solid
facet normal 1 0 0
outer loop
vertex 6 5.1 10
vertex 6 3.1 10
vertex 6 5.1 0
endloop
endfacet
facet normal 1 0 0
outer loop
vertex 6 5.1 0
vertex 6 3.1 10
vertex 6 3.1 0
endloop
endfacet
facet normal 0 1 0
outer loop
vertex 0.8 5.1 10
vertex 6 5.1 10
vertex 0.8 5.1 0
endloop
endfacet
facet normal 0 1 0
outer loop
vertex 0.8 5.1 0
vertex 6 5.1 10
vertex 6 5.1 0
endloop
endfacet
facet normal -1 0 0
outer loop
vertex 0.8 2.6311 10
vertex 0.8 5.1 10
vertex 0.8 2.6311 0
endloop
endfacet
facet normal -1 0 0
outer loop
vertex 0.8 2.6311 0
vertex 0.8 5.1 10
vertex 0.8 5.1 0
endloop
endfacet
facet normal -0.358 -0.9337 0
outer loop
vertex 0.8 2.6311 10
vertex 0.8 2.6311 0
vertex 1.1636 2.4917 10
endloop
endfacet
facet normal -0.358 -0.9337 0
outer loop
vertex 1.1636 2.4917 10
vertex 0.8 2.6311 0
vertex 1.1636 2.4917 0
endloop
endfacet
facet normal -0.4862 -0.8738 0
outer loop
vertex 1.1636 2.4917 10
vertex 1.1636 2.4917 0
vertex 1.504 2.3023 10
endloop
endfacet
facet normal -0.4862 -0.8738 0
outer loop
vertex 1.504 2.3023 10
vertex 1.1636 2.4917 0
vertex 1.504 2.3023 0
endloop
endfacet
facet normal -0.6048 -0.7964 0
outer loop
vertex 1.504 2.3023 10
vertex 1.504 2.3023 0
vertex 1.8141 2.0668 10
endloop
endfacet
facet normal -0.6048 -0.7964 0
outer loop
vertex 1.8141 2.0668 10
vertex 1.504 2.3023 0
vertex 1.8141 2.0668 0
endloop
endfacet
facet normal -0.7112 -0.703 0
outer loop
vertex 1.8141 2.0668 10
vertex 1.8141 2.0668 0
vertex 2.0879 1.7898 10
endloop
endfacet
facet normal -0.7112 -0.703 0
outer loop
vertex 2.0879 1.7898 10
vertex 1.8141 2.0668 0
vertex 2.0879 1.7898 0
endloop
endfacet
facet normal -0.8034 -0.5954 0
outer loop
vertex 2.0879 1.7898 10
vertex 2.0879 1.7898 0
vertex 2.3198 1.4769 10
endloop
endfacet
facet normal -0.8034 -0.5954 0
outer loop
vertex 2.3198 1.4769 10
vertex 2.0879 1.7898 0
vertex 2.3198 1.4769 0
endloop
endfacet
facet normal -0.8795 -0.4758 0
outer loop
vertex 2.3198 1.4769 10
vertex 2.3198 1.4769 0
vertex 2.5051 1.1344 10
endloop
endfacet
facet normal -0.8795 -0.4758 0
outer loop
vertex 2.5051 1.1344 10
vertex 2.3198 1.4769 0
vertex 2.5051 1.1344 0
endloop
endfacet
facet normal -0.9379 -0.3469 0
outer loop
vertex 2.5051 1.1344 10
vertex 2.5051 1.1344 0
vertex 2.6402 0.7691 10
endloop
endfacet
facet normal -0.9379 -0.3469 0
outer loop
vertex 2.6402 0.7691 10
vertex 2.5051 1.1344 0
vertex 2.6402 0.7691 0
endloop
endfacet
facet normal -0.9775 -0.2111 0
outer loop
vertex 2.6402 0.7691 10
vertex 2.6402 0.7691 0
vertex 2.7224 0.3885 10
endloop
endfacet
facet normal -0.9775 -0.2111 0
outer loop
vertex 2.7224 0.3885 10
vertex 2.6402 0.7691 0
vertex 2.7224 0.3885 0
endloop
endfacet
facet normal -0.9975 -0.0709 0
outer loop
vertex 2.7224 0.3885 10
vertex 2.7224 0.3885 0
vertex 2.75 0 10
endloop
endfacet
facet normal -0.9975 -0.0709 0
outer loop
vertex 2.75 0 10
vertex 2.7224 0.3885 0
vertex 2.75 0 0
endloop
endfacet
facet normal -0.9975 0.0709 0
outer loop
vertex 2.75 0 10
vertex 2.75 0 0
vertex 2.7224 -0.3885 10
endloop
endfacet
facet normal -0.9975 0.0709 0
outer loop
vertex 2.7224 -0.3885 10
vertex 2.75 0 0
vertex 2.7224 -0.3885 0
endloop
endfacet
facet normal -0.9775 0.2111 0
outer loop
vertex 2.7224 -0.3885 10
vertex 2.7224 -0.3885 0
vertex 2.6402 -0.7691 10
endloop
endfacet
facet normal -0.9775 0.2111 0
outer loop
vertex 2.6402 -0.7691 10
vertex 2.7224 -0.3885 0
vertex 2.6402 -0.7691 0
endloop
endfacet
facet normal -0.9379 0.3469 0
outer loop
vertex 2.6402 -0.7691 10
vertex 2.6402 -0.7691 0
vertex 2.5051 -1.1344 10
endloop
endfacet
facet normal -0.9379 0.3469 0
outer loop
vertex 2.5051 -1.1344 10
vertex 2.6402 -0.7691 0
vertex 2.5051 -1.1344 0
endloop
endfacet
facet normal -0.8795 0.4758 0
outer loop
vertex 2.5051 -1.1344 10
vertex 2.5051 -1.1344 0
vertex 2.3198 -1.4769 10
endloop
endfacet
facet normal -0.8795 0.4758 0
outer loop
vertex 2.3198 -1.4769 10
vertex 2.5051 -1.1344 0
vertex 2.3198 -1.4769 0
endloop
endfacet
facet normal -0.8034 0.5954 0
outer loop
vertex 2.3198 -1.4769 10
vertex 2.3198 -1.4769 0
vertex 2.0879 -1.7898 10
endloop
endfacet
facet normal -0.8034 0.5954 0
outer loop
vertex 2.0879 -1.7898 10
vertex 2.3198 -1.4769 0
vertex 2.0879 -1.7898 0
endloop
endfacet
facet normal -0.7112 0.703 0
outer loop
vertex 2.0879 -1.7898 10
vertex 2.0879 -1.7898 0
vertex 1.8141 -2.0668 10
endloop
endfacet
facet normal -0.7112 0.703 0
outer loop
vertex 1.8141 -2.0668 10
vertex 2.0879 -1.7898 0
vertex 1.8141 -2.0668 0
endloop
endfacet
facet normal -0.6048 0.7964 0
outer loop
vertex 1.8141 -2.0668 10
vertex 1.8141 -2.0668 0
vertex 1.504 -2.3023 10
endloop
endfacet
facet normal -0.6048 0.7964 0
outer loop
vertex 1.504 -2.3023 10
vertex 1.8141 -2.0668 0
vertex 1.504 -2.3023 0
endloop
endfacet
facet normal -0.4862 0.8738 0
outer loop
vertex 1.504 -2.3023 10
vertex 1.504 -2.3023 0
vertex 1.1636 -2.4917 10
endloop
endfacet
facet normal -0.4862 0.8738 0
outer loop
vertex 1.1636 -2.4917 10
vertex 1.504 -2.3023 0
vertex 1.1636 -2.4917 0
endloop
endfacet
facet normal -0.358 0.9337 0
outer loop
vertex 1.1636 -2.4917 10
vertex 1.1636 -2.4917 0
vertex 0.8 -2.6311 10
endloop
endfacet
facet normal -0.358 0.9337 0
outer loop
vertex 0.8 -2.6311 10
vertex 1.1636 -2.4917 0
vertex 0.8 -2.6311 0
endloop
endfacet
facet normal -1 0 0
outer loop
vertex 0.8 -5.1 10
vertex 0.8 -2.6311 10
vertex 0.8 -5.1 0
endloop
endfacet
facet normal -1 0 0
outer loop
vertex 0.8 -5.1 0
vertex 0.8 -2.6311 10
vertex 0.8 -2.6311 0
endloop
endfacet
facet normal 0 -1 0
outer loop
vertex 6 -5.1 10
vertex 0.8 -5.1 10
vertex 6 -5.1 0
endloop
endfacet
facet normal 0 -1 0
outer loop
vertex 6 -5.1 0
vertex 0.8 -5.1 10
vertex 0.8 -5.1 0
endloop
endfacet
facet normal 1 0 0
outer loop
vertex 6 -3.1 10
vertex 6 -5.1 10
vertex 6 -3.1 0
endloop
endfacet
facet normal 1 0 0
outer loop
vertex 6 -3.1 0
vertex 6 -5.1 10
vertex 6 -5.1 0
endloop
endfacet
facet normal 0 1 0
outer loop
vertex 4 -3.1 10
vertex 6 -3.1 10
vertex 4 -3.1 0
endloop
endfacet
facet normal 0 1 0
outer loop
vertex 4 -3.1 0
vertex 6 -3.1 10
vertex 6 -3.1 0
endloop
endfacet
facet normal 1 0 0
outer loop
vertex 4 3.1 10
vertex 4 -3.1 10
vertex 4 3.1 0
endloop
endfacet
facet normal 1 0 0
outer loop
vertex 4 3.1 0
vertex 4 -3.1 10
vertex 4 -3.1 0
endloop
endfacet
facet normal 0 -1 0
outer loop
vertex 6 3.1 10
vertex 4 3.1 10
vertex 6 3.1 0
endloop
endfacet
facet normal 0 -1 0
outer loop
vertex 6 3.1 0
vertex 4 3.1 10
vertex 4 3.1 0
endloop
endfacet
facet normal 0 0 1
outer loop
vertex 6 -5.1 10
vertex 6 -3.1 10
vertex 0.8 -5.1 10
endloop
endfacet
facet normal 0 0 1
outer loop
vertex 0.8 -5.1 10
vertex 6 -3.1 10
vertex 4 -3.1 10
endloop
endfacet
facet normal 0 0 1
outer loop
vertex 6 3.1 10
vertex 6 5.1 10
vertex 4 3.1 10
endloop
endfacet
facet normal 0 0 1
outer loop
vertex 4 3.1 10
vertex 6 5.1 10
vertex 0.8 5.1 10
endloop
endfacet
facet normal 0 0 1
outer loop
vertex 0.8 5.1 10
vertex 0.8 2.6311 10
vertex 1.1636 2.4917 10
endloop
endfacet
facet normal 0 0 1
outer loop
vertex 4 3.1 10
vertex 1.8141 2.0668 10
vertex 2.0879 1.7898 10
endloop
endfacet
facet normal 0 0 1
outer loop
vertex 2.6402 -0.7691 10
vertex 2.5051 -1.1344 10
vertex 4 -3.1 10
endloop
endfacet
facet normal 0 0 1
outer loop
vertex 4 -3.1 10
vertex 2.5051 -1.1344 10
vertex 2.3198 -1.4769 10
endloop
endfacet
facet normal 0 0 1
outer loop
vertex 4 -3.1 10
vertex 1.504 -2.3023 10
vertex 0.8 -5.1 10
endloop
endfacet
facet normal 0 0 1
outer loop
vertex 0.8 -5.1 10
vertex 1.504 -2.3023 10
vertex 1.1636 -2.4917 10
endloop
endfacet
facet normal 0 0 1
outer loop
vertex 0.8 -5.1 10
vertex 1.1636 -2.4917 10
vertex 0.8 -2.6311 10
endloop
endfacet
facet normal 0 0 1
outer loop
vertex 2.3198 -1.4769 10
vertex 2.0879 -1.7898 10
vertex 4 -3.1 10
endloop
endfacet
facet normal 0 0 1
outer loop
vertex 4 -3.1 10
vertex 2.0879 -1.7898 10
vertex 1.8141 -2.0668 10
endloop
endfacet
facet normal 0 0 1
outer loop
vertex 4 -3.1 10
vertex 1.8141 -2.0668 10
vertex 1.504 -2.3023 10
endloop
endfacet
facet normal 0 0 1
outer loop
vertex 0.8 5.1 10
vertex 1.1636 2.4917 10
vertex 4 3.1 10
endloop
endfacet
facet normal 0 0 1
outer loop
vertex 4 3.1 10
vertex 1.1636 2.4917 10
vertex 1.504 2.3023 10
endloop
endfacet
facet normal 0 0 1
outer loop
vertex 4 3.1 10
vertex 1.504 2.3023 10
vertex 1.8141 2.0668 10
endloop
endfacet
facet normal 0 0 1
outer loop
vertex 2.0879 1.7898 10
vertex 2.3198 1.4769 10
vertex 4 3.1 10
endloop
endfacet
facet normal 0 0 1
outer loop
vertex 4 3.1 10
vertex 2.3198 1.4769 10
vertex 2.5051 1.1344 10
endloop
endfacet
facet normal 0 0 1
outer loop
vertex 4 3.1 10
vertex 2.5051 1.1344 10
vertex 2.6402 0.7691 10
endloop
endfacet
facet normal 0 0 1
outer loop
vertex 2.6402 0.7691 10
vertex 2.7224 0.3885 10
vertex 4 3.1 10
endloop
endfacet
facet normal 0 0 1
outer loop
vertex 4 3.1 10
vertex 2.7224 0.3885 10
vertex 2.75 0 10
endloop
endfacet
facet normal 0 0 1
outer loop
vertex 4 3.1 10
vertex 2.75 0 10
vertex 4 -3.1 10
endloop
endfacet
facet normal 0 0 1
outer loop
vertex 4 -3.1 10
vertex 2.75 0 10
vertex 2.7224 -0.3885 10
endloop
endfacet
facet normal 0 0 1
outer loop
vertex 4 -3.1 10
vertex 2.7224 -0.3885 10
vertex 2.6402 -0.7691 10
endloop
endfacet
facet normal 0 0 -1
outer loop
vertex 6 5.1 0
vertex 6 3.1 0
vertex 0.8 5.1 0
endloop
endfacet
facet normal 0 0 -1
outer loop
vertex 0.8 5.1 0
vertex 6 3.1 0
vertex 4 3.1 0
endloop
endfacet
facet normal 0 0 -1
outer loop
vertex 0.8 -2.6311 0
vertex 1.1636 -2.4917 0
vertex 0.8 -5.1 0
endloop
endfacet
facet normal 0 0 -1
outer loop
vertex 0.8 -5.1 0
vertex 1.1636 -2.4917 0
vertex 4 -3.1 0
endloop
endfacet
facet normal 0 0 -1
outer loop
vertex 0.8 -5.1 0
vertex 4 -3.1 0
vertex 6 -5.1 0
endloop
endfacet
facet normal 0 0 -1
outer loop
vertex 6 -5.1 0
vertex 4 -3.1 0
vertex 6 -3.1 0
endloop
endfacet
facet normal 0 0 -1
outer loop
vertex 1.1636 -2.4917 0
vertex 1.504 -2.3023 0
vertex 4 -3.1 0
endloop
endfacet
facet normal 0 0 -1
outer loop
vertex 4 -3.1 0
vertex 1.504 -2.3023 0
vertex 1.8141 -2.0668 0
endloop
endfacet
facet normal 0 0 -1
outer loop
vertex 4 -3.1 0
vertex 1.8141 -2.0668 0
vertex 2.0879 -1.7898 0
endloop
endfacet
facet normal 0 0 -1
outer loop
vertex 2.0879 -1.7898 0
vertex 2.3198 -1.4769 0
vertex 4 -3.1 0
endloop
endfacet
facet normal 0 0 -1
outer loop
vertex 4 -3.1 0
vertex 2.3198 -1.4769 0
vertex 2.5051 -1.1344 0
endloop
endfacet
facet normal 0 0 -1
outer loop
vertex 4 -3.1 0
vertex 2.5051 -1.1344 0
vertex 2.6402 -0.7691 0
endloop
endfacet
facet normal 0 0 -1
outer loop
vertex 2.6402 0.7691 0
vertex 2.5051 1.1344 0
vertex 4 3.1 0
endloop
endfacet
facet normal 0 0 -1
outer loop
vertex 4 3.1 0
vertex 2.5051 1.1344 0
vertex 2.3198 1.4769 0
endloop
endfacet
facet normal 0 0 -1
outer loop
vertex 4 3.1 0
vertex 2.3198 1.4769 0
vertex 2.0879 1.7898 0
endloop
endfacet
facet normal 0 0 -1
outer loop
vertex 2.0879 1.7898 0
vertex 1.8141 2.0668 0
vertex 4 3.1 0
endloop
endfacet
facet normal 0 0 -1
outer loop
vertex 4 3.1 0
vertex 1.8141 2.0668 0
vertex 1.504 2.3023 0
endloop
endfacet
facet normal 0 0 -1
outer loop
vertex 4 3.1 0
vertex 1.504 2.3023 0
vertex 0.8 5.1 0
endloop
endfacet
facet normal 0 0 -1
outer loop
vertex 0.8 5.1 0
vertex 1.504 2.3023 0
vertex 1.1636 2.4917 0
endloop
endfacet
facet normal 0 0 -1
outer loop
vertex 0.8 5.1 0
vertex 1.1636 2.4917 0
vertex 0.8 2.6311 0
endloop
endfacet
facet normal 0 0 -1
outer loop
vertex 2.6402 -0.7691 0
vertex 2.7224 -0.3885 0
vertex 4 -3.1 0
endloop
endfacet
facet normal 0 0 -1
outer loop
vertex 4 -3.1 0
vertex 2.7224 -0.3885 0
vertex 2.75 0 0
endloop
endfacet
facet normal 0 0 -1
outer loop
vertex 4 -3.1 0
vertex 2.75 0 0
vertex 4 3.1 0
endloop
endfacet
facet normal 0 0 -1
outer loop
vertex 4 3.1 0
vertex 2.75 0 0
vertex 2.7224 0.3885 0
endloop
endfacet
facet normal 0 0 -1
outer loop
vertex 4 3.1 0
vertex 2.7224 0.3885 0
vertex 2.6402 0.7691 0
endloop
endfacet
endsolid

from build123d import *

# Parameters (mm, degrees)
EXTRUDE_1_DEPTH = 10


with BuildPart() as part:
    # ｽｹｯﾁ1 → ﾎﾞｽ - 押し出し1 (new body)
    with BuildSketch(Plane.XY):
        with BuildLine():
            Line((4, -3.1), (4, 3.1))
            Line((4, 3.1), (6, 3.1))
            Line((6, 3.1), (6, 5.1))
            Line((6, 5.1), (0.8, 5.1))
            Line((0.8, 5.1), (0.8, 3))
            Line((0.8, 3), (0.8, 2.631064423))
            ThreePointArc((0.8, 2.631064423), (2.75, 0), (0.8, -2.631064423))
            Line((0.8, -2.631064423), (0.8, -3))
            Line((0.8, -3), (0.8, -5.1))
            Line((0.8, -5.1), (6, -5.1))
            Line((6, -5.1), (6, -3.1))
            Line((6, -3.1), (4, -3.1))
        make_face()
    extrude(amount=EXTRUDE_1_DEPTH)


solid = part.part
